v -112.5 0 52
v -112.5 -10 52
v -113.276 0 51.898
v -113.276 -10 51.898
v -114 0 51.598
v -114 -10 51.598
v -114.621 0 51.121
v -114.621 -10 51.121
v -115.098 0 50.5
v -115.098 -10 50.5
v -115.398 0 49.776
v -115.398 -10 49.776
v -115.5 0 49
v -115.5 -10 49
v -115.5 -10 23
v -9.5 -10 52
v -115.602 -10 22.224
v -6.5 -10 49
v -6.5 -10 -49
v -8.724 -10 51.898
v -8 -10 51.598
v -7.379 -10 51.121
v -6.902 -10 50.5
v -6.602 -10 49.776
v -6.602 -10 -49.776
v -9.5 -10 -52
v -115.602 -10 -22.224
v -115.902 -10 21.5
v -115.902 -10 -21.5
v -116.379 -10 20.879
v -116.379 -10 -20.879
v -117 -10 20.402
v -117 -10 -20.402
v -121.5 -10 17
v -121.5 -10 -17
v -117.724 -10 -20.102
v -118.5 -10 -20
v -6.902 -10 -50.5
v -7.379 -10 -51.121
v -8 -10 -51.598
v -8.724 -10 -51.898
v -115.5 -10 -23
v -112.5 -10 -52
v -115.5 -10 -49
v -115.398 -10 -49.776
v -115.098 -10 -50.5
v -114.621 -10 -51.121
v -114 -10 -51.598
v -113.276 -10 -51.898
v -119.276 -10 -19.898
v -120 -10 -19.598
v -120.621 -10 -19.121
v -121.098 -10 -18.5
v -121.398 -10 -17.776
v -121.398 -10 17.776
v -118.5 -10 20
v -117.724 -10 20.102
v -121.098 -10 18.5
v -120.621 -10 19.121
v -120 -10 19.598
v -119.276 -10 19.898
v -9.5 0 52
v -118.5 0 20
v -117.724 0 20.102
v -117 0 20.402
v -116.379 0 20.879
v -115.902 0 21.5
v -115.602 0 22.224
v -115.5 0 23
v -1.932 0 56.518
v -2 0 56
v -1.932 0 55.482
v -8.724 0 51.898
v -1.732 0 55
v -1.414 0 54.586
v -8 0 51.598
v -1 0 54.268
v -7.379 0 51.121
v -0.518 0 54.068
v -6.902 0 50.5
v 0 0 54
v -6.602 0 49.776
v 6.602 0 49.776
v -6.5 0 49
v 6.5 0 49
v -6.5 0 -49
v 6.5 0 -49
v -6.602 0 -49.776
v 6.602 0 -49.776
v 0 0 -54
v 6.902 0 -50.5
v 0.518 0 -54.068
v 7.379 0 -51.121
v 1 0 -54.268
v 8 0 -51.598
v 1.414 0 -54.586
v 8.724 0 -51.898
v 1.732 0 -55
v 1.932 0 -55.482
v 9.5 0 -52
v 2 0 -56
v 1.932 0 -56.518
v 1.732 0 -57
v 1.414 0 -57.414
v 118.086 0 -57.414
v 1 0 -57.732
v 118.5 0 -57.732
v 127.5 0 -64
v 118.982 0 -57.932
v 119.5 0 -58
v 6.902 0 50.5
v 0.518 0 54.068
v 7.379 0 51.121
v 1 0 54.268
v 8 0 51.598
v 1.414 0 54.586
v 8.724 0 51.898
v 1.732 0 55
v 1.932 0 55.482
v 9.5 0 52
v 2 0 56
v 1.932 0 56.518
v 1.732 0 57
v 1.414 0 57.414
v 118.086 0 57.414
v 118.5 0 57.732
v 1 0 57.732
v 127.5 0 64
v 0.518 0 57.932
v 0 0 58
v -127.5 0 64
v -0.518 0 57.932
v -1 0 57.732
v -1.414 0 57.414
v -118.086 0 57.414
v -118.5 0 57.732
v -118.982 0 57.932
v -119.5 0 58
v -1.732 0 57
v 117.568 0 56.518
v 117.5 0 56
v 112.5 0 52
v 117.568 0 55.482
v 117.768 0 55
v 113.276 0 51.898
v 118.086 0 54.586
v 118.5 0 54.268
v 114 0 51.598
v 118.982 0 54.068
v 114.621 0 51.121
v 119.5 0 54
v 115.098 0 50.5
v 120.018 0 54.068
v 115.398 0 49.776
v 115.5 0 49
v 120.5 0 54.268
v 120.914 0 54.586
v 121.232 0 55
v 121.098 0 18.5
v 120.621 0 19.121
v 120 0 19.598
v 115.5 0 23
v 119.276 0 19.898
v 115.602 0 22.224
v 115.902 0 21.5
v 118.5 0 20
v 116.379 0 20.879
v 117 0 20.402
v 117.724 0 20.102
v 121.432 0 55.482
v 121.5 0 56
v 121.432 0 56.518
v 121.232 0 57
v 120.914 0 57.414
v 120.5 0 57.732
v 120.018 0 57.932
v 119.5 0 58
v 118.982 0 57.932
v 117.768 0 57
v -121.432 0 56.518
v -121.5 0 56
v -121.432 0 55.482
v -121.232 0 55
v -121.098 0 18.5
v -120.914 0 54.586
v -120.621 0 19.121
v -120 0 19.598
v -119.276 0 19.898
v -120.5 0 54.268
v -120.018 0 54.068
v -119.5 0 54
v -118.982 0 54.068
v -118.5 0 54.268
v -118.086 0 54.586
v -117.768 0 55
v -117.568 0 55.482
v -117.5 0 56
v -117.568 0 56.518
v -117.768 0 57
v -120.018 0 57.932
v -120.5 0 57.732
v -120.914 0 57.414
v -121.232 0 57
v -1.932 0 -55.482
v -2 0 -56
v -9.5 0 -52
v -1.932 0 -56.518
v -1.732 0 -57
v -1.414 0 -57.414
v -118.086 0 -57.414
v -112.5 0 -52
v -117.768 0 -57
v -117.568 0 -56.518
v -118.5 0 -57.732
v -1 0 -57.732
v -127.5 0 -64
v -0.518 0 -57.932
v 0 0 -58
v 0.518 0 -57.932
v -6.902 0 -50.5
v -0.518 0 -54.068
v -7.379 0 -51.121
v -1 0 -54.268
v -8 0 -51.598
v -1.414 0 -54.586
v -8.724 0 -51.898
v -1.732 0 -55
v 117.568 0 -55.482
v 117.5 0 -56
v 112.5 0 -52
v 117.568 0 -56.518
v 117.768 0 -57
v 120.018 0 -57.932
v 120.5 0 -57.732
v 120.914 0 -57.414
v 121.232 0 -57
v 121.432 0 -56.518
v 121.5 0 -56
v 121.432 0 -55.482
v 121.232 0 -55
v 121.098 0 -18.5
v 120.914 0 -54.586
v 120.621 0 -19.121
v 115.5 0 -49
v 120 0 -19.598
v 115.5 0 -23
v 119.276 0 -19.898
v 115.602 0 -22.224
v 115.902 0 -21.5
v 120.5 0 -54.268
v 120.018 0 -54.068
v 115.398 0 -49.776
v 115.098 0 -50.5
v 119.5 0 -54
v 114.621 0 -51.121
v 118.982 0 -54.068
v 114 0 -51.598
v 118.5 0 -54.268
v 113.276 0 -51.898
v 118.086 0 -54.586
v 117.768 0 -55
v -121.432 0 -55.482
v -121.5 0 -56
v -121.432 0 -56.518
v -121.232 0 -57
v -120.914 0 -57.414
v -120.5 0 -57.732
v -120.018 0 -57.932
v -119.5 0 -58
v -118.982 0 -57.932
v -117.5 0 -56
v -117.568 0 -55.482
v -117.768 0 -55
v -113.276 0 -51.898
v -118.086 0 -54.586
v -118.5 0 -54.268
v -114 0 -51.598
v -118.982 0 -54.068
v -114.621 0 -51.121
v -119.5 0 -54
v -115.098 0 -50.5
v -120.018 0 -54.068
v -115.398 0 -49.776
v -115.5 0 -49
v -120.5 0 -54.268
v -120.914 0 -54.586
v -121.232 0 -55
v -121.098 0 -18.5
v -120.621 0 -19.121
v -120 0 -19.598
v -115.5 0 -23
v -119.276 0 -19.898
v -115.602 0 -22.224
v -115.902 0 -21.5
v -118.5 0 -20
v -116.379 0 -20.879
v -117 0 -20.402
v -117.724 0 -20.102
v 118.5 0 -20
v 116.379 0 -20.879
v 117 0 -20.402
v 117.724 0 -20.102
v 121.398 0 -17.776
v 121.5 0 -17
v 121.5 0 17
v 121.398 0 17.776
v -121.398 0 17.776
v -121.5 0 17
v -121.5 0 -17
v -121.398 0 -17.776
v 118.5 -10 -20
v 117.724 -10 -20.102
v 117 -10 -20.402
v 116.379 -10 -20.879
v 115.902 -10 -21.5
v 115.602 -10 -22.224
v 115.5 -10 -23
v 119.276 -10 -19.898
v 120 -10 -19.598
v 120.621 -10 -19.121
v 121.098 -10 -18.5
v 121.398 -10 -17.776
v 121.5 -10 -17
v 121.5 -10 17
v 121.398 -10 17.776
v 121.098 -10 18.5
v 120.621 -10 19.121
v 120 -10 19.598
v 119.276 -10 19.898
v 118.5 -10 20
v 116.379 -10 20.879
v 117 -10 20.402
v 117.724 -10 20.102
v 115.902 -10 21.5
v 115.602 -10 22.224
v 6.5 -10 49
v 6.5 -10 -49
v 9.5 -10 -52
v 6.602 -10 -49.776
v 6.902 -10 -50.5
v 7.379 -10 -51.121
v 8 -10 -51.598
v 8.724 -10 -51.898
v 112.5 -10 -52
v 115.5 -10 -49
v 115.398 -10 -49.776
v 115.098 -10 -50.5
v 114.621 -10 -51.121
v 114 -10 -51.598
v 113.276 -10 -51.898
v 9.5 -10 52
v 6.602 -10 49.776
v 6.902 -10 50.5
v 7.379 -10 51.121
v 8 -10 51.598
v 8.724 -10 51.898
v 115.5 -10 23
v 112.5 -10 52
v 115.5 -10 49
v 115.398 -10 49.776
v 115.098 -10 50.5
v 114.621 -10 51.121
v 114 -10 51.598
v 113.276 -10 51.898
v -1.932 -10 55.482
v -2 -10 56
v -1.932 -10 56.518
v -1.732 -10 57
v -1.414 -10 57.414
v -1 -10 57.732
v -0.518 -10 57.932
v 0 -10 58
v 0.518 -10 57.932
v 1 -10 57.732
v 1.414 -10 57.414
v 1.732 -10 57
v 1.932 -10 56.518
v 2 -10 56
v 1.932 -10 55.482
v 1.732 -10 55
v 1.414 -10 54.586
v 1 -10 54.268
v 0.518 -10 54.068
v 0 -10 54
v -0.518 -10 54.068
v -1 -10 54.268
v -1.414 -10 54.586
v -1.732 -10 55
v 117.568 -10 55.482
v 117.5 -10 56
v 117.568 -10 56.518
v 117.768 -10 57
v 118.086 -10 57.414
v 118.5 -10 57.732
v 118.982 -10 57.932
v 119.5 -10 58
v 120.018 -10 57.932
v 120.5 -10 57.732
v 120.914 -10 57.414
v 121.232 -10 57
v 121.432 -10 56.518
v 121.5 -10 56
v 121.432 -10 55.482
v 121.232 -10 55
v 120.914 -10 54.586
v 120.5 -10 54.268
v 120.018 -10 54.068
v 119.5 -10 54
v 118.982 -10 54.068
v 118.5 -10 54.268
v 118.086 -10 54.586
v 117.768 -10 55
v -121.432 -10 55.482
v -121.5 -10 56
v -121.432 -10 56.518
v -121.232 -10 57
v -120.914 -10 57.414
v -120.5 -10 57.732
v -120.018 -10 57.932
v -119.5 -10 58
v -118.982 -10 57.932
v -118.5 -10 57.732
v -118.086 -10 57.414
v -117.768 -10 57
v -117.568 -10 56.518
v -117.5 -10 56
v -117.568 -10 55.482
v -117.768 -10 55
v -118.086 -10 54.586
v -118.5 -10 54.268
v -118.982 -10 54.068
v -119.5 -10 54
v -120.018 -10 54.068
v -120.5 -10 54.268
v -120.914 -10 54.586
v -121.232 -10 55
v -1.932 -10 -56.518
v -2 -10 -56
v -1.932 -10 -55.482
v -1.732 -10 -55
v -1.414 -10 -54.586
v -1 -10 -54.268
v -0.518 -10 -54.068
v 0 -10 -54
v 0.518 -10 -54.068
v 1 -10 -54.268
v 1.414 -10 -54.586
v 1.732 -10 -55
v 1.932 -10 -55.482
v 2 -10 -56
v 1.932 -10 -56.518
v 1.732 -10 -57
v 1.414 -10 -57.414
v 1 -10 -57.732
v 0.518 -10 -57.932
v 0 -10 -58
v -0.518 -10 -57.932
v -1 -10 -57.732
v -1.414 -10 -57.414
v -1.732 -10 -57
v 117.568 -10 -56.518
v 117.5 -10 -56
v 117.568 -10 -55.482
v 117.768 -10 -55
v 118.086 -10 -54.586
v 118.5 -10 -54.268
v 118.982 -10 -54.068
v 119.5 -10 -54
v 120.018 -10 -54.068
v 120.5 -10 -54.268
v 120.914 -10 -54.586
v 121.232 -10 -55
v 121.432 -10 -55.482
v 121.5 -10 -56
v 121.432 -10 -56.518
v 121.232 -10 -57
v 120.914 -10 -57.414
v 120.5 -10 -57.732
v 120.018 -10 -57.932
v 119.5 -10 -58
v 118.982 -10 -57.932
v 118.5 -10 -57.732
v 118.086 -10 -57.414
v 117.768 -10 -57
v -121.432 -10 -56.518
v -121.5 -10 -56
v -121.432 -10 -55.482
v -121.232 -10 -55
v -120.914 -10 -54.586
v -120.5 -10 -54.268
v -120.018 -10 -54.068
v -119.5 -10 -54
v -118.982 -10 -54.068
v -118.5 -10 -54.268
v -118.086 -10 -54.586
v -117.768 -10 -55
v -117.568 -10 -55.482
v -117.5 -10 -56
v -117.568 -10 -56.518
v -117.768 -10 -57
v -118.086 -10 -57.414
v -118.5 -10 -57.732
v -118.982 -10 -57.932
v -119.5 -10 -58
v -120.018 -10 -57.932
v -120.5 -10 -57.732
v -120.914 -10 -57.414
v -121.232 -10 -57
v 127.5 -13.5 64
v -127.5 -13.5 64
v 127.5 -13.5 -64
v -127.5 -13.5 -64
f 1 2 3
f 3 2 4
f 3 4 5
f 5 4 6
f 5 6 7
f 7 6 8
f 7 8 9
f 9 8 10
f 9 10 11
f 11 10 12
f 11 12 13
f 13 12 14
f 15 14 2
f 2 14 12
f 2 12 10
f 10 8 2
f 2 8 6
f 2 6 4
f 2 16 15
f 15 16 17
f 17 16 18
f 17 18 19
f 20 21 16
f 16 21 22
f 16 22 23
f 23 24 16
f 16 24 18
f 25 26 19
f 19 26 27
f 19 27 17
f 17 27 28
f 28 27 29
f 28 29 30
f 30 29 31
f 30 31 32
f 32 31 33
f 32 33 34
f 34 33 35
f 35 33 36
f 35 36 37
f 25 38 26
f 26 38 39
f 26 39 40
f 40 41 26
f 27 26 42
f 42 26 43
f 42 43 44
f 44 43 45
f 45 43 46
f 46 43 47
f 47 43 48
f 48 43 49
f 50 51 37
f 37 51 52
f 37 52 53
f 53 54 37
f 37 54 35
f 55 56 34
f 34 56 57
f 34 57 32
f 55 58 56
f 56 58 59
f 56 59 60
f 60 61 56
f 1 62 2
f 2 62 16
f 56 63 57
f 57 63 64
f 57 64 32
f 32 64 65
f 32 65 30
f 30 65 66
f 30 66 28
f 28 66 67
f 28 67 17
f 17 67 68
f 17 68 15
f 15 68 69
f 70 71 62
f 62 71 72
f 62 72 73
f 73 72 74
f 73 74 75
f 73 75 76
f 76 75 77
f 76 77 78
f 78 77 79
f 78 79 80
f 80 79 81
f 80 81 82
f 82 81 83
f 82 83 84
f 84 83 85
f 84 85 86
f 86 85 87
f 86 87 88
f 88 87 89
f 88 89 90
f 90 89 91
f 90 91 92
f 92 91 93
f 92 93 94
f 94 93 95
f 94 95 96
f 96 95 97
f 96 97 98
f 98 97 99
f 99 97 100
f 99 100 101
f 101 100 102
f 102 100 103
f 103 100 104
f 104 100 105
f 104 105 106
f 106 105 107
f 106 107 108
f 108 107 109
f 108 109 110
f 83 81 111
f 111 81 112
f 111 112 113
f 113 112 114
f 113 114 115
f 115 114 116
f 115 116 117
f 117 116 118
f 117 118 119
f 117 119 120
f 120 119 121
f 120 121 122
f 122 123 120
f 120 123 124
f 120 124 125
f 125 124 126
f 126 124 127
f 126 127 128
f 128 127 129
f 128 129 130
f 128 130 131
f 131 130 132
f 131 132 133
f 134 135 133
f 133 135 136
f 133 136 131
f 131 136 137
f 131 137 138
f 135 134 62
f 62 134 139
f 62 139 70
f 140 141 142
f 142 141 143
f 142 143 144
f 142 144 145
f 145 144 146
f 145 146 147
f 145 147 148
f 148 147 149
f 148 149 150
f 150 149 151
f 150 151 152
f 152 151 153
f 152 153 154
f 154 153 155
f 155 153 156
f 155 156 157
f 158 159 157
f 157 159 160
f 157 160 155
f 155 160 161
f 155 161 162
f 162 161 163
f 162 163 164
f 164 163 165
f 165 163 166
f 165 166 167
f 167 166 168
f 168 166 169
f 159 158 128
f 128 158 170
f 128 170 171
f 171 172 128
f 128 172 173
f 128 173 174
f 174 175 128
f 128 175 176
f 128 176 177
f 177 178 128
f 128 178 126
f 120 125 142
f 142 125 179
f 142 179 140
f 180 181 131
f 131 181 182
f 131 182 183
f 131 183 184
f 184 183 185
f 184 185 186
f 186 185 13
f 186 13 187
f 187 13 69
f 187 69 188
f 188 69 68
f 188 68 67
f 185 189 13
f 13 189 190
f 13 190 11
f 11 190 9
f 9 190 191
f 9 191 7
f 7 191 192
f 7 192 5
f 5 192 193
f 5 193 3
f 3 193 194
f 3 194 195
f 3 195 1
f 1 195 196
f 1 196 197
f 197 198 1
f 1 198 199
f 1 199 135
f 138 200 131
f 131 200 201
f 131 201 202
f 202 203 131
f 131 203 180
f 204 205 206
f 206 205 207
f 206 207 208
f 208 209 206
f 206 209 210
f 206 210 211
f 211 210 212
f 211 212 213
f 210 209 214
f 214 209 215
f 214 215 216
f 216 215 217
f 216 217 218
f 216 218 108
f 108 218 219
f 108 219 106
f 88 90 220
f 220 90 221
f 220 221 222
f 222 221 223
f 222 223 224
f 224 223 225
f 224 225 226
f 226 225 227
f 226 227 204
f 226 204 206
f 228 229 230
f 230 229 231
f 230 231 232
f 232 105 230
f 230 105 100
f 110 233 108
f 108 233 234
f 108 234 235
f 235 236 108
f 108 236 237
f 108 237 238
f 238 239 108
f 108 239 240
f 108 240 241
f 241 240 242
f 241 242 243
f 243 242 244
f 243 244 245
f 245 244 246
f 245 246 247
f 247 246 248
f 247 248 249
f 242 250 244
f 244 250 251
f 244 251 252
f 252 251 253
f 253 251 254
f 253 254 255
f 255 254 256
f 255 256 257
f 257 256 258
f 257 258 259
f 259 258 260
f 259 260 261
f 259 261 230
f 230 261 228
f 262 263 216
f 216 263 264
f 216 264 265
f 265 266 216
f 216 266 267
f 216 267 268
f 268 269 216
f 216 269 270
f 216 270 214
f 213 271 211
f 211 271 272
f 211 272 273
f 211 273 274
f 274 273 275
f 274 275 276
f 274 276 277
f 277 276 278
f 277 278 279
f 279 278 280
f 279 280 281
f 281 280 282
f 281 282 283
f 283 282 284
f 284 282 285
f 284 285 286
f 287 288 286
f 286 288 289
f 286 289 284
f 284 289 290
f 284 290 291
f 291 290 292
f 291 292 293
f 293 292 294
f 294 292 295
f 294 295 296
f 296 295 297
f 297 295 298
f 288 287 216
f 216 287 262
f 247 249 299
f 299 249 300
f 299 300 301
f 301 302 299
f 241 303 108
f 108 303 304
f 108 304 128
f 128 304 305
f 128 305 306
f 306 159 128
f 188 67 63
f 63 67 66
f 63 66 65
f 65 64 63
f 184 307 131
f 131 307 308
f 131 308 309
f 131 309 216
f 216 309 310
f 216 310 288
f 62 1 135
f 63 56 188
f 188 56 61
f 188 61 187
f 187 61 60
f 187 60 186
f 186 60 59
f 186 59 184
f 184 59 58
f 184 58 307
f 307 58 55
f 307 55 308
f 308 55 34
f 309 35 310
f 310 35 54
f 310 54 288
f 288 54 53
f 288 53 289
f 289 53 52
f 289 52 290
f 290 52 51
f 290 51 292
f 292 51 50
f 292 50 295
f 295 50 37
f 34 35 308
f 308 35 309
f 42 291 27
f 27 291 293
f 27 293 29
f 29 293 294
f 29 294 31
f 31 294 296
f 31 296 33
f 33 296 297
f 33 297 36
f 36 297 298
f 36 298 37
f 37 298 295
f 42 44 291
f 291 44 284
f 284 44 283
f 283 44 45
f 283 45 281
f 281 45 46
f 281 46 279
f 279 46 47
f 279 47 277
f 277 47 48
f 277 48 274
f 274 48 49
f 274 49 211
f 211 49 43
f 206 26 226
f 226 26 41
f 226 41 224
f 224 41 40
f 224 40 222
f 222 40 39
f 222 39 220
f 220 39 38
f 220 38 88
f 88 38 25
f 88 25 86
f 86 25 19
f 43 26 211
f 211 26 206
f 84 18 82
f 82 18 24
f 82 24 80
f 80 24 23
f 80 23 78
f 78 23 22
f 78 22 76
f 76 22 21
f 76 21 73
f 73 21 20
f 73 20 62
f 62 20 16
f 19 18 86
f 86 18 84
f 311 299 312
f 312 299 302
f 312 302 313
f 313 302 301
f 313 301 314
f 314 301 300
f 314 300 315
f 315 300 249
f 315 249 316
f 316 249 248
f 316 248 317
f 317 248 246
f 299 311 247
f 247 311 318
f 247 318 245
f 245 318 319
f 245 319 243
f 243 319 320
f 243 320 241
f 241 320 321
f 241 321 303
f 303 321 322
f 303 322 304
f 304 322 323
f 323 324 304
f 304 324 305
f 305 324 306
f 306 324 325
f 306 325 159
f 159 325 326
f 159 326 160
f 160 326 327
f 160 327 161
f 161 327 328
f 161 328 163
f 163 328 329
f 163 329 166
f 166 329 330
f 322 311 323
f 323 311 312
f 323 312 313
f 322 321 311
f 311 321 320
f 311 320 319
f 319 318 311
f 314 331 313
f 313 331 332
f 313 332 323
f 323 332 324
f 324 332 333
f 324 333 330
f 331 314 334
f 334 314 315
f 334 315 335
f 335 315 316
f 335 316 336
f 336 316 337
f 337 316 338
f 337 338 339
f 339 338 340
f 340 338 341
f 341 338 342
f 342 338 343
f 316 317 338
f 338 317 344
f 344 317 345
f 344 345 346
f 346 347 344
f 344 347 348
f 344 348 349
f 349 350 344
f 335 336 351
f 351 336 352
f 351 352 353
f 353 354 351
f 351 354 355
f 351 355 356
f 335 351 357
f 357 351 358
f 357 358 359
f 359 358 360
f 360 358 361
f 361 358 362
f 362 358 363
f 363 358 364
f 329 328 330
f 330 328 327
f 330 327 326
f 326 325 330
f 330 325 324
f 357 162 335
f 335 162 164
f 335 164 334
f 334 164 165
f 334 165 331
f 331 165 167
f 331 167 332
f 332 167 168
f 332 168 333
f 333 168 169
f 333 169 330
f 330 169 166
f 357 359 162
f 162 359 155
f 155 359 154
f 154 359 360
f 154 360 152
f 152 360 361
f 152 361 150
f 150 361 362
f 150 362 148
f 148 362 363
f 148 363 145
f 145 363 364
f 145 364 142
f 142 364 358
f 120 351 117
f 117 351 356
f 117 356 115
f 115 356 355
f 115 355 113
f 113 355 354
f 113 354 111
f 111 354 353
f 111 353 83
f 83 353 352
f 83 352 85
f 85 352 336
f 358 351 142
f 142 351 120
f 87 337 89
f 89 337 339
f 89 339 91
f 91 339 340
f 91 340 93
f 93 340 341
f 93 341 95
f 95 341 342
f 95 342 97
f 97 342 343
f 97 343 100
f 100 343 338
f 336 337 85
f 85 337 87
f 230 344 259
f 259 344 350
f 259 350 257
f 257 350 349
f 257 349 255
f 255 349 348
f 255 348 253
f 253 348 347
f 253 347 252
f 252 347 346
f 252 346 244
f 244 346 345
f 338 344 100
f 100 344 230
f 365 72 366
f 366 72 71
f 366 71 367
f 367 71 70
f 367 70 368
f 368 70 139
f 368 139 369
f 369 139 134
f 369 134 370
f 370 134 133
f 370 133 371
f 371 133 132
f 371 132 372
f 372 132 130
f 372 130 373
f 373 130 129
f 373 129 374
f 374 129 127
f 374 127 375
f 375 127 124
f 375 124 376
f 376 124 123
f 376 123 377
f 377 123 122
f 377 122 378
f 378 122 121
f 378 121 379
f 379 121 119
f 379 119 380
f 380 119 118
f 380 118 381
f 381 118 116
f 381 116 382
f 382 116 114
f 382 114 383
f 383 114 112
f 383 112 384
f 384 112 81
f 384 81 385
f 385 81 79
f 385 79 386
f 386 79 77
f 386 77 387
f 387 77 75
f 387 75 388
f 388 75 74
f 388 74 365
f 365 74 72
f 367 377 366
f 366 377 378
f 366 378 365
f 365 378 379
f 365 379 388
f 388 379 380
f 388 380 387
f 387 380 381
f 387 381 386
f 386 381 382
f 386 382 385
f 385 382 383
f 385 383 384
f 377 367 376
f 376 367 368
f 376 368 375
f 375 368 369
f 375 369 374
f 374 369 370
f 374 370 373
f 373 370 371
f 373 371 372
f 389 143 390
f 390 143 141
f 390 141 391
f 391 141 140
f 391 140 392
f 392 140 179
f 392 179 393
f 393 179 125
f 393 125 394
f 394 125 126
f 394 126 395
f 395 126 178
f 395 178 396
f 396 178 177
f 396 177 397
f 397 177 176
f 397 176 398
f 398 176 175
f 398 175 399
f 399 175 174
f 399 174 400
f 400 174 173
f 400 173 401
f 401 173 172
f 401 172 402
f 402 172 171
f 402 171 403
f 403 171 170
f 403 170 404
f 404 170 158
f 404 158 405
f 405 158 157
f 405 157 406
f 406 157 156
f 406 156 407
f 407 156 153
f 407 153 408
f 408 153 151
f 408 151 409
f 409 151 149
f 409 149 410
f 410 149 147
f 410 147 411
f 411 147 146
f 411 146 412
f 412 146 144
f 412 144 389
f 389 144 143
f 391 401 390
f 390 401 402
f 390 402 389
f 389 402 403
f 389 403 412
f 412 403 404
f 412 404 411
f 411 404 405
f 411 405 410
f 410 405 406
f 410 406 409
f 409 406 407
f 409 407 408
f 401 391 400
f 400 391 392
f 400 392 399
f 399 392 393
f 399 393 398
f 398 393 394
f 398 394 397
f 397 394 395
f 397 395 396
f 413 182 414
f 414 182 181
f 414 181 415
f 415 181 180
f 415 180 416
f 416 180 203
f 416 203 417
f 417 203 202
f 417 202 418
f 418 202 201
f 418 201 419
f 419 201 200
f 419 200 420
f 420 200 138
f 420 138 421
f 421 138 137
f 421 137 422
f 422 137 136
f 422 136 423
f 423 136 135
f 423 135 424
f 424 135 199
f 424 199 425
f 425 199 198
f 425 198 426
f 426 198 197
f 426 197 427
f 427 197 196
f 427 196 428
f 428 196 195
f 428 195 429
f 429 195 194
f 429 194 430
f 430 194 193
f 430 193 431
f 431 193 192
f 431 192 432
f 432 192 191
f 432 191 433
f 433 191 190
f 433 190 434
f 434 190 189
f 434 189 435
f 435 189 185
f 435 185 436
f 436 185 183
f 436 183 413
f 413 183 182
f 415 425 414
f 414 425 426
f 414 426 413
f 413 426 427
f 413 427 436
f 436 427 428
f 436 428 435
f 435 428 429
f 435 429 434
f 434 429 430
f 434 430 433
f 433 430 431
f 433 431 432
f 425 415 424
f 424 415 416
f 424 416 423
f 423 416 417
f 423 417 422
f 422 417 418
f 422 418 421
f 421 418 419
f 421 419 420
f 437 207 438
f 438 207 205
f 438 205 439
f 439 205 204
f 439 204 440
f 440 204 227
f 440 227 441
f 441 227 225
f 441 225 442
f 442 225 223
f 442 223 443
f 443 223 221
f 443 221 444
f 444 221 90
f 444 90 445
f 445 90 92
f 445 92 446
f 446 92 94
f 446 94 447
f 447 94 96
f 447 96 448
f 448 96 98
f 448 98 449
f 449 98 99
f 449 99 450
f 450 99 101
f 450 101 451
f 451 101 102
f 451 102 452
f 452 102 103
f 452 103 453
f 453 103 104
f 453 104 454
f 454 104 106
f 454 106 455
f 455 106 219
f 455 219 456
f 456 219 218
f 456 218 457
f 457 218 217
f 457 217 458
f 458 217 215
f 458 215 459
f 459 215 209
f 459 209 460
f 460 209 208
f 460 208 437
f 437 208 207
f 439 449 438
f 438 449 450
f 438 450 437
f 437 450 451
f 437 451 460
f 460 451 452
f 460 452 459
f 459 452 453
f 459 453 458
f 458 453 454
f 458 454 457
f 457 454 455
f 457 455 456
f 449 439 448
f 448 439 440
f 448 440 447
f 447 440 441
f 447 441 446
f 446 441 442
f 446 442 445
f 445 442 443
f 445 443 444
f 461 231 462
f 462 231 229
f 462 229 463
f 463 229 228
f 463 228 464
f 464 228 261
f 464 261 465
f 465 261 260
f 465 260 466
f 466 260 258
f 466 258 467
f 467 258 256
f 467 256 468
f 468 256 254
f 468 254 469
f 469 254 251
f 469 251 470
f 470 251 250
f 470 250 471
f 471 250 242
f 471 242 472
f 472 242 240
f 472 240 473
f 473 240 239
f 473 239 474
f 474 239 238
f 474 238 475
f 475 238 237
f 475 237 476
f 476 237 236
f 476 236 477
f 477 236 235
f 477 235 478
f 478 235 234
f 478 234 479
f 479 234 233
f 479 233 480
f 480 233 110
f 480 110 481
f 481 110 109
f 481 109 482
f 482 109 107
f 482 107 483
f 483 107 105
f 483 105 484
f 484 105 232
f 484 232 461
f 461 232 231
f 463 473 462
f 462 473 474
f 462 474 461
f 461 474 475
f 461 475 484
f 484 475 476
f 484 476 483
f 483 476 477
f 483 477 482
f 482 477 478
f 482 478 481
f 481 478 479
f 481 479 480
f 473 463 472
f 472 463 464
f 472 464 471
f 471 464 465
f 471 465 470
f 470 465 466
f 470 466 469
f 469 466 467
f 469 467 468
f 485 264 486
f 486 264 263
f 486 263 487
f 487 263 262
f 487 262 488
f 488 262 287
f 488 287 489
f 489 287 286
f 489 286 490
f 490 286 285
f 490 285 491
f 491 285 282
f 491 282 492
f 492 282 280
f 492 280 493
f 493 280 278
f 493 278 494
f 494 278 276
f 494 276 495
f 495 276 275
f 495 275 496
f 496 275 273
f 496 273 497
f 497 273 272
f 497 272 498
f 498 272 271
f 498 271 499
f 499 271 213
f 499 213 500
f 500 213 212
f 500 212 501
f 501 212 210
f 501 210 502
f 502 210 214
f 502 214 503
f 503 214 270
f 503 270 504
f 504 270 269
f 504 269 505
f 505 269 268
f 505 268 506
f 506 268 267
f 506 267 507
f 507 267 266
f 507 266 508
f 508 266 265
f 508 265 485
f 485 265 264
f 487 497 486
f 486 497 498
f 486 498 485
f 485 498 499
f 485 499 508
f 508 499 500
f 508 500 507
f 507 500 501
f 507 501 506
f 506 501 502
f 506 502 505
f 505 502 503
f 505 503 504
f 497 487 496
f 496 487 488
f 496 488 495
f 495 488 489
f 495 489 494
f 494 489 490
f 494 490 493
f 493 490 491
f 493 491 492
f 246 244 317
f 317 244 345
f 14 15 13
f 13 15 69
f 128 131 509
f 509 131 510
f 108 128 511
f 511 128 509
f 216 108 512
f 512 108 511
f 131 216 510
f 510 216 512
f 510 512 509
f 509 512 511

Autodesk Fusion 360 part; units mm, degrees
sketch "Sketch1" plane through (0, 0, 0) normal (0, 1, 0) x (1, 0, 0)
  line L0 (-127.5, -64) -> (127.5, -64)
  line L1 (127.5, -64) -> (127.5, 64)
  line L2 (127.5, 64) -> (-127.5, 64)
  line L3 (-127.5, 64) -> (-127.5, -64)
  line L4 (127.5, 0) -> (0, 0) construction
  line L5 (0, 0) -> (0, -64) construction
  circle A0 centre (0, -56) radius 2
  circle A1 centre (119.5, -56) radius 2
  circle A2 centre (119.5, 56) radius 2
  circle A3 centre (0, 56) radius 2
  line L6 (119.5, -56) -> (119.5, 56) construction
  circle A4 centre (-119.5, -56) radius 2
  circle A5 centre (-119.5, 56) radius 2
  line L7 (115.5, -52) -> (6.5, -52)
  line L8 (6.5, -52) -> (6.5, 52)
  line L9 (6.5, 52) -> (115.5, 52)
  line L10 (115.5, 52) -> (115.5, -52)
  line L11 (-6.5, 52) -> (-115.5, 52)
  line L12 (-115.5, 52) -> (-115.5, -52)
  line L13 (-115.5, -52) -> (-6.5, -52)
  line L14 (-6.5, -52) -> (-6.5, 52)
  line L15 (115.5, -20) -> (121.5, -20)
  line L16 (121.5, -20) -> (121.5, 20)
  line L17 (121.5, 20) -> (115.5, 20)
  line L18 (121.5, 0) -> (127.5, 0) construction
  line L19 (-115.5, -20) -> (-121.5, -20)
  line L20 (-121.5, -20) -> (-121.5, 20)
  line L21 (-121.5, 20) -> (-115.5, 20)
  dimension "d4" = 255
  dimension "d5" = 128
  dimension "d8" = 4
  dimension "d9" = 8
  dimension "d10" = 4
  dimension "d11" = 8
  dimension "d12" = 8
  dimension "d13" = 12
  dimension "d14" = 12
  dimension "d15" = 6.5
  dimension "d16" = 12
  dimension "d21" = 40
  dimension "d23" = 6
extrude "Extrude1" add sketch "Sketch1" against normal blind 13.5 contours L0 L1 L2 L3 | A0 | A1 | A2 | A3 | A4 | A5 | L7 L8 L9 L10 | L10 L15 L16 L17 | L11 L12 L13 L14 | L12 L19 L20 L21
extrude "Extrude2" cut sketch "Sketch1" against normal blind 10 contours L7 L8 L9 L10 | L10 L15 L16 L17 | L11 L12 L13 L14 | L12 L19 L20 L21
extrude "Extrude3" cut sketch "Sketch1" against normal blind 10 contours A0 | A1 | A2 | A3 | A4 | A5
fillet "Fillet1" radius 3 16 edges at (115.5, -5, -52) (6.5, -5, -52) (6.5, -5, 52) (115.5, -5, 52) (115.5, -5, 20) (121.5, -5, 20) (121.5, -5, -20) (115.5, -5, -20) (-6.5, -5, 52) (-6.5, -5, -52) (-115.5, -5, -52) (-115.5, -5, -20) (-121.5, -5, -20) (-121.5, -5, 20) (-115.5, -5, 20) (-115.5, -5, 52)
equation "matrixWidth = 128 mm"
equation "matrixLength = 255 mm"
equation "matrixThickness = 13.5 mm"
equation "d4 = matrixLength"
equation "d5 = matrixWidth"
equation "d6 = -matrixThickness"
equation "d8 = mHole"
equation "d9 = HoleDist"
equation "d10 = mHole"
equation "d11 = HoleDist"
equation "d12 = HoleDist"
equation "mHole = 4 mm"
equation "HoleDist = 8 mm"
